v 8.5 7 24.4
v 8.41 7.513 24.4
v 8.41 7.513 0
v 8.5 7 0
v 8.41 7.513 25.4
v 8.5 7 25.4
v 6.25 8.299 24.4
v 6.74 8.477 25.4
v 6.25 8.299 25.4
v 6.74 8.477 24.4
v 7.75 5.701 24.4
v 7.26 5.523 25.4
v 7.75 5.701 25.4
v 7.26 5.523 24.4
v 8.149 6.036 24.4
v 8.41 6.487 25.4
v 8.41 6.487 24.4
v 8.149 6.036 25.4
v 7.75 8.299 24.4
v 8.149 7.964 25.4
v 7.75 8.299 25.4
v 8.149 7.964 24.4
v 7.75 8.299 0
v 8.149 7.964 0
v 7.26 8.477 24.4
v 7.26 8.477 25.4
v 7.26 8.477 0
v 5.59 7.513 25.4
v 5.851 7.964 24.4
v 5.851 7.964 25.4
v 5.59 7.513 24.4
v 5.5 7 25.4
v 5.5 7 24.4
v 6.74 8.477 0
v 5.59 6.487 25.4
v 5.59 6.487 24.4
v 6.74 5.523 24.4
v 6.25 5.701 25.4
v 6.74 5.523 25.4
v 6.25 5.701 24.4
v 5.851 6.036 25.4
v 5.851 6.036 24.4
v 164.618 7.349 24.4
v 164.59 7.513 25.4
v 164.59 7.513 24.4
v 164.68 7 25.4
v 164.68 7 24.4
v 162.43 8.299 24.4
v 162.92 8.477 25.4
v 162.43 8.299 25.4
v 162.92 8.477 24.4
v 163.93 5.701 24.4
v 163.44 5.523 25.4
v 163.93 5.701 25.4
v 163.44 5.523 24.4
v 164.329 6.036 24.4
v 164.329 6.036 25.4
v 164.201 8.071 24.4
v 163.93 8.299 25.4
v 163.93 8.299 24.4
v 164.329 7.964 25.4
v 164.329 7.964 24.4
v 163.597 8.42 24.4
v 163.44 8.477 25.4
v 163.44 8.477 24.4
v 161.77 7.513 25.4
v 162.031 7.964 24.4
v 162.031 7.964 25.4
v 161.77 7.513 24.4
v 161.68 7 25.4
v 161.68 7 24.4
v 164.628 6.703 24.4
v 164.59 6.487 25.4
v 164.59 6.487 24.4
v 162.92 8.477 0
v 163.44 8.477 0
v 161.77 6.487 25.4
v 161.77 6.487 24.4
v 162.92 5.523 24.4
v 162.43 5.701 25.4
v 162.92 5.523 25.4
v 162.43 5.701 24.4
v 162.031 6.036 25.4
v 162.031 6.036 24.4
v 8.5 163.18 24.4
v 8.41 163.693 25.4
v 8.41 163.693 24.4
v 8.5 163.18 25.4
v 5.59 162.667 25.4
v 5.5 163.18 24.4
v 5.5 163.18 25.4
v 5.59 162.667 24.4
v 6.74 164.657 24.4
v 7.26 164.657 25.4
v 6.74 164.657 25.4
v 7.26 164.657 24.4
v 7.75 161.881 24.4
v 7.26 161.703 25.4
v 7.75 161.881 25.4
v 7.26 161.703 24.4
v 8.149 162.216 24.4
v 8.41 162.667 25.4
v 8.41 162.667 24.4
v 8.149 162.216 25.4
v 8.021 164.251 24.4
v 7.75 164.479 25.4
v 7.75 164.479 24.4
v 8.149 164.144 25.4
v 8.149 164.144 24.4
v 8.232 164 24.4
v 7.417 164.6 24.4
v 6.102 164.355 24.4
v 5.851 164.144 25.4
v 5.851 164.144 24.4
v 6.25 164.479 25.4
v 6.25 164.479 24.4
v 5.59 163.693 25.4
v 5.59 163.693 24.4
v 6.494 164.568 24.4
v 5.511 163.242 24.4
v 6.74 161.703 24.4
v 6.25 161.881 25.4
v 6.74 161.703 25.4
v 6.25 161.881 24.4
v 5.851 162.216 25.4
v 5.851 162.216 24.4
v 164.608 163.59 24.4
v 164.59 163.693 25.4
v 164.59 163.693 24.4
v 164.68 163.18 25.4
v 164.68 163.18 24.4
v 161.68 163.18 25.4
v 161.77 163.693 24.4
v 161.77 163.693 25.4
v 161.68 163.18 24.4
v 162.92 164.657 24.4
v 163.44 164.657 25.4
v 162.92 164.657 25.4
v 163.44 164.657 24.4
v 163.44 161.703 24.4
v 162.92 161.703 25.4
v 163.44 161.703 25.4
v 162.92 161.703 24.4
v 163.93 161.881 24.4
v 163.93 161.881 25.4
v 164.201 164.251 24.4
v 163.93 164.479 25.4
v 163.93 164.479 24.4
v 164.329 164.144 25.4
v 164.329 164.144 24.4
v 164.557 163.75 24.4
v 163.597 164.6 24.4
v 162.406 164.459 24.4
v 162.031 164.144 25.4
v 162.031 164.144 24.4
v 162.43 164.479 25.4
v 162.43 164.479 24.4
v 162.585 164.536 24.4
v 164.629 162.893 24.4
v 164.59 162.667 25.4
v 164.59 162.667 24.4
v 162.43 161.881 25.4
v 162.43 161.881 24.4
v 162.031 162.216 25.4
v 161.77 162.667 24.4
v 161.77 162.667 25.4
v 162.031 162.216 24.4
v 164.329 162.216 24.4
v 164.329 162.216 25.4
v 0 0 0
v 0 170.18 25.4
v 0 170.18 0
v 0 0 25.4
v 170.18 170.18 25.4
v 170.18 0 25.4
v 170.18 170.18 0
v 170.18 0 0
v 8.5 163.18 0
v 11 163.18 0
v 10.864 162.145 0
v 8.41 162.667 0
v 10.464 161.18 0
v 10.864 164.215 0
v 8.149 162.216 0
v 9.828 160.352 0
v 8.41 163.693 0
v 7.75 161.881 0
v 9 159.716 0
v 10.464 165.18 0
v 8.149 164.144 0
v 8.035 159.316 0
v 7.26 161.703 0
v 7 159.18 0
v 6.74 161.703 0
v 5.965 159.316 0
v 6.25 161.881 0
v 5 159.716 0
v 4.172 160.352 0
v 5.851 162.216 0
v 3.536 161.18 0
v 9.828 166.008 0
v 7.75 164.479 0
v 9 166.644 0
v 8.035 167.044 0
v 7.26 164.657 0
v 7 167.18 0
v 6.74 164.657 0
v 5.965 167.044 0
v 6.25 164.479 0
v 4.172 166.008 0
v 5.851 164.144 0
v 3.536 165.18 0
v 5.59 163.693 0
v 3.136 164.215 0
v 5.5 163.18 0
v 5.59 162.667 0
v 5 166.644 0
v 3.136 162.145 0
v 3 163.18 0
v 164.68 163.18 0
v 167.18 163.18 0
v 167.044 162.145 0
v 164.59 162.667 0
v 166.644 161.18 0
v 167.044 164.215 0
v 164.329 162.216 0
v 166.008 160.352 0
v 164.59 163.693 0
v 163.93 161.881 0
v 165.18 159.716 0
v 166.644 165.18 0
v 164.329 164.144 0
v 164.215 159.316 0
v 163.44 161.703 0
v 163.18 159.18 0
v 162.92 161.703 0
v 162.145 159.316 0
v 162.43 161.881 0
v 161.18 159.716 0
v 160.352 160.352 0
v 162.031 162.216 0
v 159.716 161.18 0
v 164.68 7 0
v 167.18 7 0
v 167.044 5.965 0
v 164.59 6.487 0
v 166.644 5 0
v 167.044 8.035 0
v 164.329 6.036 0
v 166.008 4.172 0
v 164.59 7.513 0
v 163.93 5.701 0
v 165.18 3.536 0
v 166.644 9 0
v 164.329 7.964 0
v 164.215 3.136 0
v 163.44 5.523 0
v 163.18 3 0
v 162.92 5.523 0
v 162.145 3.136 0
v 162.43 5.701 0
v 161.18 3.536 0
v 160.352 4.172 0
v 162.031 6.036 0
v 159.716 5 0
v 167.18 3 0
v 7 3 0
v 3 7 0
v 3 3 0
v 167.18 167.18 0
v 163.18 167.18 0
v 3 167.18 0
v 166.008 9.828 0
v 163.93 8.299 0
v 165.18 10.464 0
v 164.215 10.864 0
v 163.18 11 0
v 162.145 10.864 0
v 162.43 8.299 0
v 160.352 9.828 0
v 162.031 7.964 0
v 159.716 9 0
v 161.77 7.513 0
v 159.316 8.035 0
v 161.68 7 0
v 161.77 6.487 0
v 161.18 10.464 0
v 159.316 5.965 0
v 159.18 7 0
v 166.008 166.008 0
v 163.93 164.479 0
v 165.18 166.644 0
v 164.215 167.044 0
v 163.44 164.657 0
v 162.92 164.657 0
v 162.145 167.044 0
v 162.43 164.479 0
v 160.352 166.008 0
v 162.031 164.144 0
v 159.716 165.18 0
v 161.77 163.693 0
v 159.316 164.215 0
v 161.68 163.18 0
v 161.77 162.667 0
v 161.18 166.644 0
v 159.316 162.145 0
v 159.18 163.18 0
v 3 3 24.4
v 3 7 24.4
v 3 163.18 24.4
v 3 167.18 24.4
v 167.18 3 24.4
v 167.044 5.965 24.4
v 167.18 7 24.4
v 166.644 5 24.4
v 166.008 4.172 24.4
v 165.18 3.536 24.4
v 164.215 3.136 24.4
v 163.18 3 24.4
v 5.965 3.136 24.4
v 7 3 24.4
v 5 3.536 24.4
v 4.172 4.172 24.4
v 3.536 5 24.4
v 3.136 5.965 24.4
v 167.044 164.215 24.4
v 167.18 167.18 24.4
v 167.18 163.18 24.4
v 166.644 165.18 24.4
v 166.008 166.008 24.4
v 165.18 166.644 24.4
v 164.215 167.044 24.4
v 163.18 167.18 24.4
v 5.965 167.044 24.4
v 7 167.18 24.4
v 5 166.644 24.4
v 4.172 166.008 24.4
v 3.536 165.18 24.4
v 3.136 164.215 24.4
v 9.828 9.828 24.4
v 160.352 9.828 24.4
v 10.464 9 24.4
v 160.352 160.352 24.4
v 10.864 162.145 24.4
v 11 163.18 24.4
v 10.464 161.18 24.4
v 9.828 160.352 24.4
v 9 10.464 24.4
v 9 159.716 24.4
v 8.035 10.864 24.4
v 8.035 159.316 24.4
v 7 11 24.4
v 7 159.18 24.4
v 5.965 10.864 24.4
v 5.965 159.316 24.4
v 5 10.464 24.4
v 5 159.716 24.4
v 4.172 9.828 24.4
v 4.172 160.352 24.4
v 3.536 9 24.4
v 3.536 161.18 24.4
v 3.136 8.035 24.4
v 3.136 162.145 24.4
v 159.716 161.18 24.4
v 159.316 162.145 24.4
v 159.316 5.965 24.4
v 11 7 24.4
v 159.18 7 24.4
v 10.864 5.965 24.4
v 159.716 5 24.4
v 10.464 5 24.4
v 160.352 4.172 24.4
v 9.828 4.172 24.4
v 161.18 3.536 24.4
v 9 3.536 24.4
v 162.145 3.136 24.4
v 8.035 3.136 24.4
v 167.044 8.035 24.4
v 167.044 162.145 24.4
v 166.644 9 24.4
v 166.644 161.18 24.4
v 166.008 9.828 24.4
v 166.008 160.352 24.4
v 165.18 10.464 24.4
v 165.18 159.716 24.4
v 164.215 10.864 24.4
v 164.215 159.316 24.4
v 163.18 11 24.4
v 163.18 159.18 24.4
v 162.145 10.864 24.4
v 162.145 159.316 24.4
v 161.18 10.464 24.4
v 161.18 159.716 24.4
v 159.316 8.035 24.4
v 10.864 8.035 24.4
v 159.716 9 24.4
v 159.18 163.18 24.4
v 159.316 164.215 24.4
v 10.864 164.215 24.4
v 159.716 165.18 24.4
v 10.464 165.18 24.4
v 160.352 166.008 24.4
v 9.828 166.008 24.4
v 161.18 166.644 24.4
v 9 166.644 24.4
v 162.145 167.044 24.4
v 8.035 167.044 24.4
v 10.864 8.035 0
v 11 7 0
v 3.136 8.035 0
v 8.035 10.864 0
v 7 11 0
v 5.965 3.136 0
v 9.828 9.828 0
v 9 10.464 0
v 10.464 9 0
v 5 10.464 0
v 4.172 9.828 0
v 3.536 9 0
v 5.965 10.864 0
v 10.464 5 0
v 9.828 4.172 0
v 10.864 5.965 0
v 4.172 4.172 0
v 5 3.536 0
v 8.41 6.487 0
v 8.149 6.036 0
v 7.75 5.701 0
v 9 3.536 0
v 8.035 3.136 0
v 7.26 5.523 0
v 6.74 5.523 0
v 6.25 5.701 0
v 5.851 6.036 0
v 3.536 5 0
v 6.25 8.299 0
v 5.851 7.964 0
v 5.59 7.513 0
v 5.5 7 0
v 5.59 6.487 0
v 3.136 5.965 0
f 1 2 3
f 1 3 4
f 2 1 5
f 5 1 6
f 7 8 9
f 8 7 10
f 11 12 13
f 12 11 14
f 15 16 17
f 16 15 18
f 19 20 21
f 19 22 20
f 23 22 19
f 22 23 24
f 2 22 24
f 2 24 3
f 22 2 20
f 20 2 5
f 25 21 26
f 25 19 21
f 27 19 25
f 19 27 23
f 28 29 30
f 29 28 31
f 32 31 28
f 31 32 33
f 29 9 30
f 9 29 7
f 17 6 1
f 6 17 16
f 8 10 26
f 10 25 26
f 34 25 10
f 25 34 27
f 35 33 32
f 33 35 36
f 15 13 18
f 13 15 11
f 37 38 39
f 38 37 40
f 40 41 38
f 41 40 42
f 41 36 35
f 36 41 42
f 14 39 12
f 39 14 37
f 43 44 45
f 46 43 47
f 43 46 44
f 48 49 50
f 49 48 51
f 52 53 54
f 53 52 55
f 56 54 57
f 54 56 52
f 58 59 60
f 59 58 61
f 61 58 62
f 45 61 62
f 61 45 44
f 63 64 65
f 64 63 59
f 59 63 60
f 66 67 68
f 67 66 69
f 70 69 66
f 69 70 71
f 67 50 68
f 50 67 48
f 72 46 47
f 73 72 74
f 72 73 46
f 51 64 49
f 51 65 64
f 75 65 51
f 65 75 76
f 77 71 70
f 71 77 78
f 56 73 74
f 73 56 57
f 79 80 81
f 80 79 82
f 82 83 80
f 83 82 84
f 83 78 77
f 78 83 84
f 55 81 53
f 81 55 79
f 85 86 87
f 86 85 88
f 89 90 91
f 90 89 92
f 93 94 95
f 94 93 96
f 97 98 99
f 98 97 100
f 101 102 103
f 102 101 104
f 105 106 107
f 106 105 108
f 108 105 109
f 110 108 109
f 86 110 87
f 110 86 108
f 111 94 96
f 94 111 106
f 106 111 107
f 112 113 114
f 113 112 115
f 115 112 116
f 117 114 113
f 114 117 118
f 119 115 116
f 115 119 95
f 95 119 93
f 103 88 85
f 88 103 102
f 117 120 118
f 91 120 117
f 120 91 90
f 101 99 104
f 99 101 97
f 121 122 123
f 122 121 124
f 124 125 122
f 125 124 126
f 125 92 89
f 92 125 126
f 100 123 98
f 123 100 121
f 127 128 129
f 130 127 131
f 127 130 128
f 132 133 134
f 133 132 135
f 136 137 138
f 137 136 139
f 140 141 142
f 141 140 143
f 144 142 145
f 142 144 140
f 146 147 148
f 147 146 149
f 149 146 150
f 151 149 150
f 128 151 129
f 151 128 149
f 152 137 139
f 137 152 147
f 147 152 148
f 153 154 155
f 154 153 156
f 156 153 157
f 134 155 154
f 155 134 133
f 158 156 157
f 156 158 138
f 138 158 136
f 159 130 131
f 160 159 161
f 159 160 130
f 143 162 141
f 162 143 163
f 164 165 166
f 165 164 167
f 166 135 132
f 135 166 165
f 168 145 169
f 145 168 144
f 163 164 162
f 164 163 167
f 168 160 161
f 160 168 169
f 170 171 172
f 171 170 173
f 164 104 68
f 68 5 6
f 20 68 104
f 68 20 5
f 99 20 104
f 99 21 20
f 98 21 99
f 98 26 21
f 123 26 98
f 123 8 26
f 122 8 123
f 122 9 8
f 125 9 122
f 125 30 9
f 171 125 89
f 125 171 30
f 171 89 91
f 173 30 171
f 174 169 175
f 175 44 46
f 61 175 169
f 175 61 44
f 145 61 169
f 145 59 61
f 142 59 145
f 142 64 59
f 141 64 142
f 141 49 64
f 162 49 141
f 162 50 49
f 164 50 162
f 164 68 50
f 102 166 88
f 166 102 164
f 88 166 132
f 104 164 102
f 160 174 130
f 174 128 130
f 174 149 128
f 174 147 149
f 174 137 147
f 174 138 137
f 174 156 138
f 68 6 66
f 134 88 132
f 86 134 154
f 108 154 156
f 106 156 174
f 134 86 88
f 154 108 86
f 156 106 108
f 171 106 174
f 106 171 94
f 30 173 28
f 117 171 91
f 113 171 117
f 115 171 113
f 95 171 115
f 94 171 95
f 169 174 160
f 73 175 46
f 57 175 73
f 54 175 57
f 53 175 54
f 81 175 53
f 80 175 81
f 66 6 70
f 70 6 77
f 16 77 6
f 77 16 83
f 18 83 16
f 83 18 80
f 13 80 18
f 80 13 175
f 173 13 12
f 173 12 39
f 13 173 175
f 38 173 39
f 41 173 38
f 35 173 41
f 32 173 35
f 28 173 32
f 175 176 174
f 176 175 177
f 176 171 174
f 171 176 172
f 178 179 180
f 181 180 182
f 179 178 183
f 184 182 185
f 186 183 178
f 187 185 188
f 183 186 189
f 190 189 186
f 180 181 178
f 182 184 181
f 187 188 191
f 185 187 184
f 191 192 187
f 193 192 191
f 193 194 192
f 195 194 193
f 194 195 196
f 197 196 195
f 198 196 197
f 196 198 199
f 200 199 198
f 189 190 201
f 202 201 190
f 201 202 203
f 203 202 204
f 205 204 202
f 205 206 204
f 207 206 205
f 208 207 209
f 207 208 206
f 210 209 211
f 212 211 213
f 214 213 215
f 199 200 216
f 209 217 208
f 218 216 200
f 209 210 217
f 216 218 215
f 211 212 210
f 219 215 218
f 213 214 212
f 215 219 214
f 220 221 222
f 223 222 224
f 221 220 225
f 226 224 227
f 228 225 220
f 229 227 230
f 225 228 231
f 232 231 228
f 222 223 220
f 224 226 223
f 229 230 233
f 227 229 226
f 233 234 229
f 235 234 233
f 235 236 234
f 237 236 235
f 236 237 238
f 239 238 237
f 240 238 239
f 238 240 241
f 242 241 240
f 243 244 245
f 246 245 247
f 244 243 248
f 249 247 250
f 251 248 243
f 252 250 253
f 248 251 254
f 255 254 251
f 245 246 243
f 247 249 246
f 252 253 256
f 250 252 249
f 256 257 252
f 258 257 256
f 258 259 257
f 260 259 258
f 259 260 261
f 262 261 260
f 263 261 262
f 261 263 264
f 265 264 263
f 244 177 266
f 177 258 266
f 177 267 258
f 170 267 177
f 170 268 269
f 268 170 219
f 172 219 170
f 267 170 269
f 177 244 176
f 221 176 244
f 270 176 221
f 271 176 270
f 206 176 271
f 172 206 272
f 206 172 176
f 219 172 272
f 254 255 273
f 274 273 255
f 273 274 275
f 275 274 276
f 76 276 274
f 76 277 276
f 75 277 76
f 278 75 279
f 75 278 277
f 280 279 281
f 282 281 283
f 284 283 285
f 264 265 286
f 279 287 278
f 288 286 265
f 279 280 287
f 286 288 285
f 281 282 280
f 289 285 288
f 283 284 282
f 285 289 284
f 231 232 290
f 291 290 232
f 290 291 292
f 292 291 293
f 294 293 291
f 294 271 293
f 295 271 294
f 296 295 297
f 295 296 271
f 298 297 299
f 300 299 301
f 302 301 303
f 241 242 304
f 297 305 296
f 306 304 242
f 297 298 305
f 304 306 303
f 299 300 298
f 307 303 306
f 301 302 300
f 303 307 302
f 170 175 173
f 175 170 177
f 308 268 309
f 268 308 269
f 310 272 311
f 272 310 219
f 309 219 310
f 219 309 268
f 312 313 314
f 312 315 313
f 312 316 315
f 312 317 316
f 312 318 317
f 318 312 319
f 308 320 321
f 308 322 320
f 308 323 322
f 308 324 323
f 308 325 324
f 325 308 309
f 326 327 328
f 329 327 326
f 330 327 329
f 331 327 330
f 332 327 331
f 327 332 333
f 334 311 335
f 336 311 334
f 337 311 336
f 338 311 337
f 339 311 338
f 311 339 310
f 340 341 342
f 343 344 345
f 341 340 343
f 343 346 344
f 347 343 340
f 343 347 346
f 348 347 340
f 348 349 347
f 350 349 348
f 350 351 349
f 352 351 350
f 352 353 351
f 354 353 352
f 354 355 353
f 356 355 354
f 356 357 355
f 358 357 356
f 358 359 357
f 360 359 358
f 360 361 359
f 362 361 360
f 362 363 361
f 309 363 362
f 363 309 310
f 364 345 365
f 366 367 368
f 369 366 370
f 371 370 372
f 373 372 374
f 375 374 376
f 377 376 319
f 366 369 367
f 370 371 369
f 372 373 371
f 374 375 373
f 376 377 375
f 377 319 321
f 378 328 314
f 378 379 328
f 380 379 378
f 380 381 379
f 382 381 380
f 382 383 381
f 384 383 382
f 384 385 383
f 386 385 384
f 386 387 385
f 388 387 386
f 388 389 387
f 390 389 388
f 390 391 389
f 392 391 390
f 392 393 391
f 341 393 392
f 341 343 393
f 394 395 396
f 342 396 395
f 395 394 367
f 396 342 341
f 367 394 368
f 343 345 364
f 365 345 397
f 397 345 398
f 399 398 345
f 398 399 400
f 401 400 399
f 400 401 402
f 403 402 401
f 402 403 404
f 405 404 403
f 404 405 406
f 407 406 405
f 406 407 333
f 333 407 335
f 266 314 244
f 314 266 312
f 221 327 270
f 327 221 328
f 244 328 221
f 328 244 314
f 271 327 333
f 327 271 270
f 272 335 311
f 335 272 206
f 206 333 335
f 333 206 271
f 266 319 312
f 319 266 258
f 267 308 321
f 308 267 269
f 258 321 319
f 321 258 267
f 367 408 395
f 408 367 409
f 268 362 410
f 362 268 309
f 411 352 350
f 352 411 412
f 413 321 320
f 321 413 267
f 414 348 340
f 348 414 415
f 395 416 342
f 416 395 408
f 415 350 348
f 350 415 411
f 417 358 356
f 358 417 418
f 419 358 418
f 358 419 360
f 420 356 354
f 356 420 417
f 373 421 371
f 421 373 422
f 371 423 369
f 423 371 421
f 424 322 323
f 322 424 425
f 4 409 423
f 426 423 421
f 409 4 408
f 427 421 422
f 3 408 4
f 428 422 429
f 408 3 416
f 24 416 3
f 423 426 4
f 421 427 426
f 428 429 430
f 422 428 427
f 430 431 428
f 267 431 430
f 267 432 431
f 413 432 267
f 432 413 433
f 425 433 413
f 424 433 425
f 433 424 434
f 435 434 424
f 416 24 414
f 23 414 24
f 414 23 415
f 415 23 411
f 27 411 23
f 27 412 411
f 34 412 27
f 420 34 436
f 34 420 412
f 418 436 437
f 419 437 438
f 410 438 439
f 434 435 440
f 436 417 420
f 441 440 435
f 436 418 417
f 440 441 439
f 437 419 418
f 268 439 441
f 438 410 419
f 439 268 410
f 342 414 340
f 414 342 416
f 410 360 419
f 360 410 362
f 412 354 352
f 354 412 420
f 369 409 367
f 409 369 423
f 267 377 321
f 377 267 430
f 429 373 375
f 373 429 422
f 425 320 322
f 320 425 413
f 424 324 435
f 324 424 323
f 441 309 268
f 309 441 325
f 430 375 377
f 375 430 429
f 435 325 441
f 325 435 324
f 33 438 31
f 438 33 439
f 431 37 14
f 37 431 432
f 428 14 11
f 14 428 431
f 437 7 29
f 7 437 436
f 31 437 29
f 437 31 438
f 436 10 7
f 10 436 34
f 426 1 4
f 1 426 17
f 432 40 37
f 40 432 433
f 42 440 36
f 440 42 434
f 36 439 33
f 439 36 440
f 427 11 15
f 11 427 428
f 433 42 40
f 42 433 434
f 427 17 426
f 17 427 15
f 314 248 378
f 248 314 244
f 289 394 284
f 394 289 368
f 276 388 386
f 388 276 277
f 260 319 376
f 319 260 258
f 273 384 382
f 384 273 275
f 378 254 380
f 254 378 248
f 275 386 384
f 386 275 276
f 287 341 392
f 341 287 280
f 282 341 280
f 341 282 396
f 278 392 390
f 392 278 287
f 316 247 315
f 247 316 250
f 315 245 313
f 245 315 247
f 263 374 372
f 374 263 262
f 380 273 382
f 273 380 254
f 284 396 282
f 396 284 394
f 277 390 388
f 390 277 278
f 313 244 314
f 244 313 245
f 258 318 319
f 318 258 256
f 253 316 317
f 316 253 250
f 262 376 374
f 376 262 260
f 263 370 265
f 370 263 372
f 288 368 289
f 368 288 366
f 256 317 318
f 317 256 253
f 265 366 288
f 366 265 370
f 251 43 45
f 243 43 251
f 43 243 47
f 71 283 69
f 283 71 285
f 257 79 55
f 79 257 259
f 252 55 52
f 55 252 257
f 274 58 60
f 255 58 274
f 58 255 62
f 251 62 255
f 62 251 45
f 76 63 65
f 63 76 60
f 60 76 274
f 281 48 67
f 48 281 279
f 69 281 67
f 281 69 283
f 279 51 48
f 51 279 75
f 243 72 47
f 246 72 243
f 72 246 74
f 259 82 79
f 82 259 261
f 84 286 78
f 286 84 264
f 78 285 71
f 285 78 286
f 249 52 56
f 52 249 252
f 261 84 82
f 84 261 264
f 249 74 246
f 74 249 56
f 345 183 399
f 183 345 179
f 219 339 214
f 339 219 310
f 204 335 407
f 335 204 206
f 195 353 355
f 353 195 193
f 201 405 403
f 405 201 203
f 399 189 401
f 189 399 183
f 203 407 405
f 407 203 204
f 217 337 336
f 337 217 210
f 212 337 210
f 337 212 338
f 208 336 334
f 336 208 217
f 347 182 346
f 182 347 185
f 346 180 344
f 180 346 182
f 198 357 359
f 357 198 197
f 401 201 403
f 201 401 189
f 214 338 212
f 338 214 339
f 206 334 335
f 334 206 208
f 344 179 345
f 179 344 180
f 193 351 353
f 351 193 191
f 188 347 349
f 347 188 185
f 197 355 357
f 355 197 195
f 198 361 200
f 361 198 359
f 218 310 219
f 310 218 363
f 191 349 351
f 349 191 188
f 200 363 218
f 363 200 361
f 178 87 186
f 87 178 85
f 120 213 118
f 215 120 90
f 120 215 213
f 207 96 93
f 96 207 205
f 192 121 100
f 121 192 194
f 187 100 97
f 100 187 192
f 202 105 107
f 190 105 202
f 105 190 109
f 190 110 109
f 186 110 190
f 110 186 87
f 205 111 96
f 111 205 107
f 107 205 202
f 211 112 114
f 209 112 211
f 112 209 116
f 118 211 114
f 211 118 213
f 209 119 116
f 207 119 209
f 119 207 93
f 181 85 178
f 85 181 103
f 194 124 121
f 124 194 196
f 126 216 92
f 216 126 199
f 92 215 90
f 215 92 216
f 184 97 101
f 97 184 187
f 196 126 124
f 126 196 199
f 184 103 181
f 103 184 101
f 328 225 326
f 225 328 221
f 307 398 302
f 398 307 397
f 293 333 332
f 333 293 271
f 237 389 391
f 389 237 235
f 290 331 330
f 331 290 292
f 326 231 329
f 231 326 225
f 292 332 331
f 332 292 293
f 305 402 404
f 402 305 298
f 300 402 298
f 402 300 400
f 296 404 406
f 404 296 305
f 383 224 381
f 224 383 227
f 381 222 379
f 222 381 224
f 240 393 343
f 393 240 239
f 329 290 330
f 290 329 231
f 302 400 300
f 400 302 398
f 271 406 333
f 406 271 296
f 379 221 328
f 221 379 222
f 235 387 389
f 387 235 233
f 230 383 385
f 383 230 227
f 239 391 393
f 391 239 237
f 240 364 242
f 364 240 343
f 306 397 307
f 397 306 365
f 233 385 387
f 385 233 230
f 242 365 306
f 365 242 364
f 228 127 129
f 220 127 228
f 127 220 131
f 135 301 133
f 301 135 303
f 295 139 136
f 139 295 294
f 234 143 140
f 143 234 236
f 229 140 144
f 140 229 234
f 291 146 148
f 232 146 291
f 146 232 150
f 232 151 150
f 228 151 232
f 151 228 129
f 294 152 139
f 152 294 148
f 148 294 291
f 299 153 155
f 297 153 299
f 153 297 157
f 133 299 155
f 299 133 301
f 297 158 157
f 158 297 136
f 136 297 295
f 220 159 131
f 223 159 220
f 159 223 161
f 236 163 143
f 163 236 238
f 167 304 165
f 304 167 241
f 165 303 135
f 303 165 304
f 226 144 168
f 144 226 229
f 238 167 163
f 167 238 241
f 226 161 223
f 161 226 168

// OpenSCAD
// ============================================================
// PhoneLock - Outer Cover (goes over the flat lid)
// Same footprint as tray, 1 inch tall, open bottom, hollow
// All dimensions in mm. Inches converted at 25.4mm = 1 inch.
// ============================================================

// --- Parameters ---
wall            = 3;          // side wall thickness (mm)
top_thickness   = 1;          // top face thickness (mm)
in2mm           = 25.4;

// Must match component tray exactly
outer_w    = 6.7  * in2mm;   // 170.18 mm  (X)
outer_d    = 6.7  * in2mm;   // 170.18 mm  (Y)
outer_h    = 1.0  * in2mm;   //  25.40 mm  (Z) - 1 inch tall

// Screw boss parameters — must match component tray exactly
boss_r     = 4;               // outer radius of corner screw boss
screw_r    = 1.5;             // M3 screw hole

// ============================================================
// MODULE: Corner screw bosses
// ============================================================
module screw_bosses() {
    offsets = [
        [wall + boss_r,           wall + boss_r          ],
        [outer_w - wall - boss_r, wall + boss_r          ],
        [wall + boss_r,           outer_d - wall - boss_r],
        [outer_w - wall - boss_r, outer_d - wall - boss_r]
    ];
    for (o = offsets) {
        translate([o[0], o[1], 0])
            difference() {
                cylinder(r = boss_r, h = outer_h - top_thickness, $fn = 24);
                translate([0, 0, -1])
                    cylinder(r = screw_r, h = outer_h + 2, $fn = 18);
            }
    }
}

// ============================================================
// MAIN: Outer Cover
// ============================================================
module outer_cover() {
    difference() {

        // --- Outer shell ---
        cube([outer_w, outer_d, outer_h]);

        // --- Hollow interior (open bottom) ---
        translate([wall, wall, 0])
            cube([
                outer_w - 2 * wall,
                outer_d - 2 * wall,
                outer_h - top_thickness   // leaves top_thickness solid on top
            ]);

        // --- 4 screw holes through the top face ---
        offsets = [
            [wall + boss_r,           wall + boss_r          ],
            [outer_w - wall - boss_r, wall + boss_r          ],
            [wall + boss_r,           outer_d - wall - boss_r],
            [outer_w - wall - boss_r, outer_d - wall - boss_r]
        ];
        for (o = offsets) {
            translate([o[0], o[1], outer_h - top_thickness - 1])
                cylinder(r = screw_r, h = top_thickness + 2, $fn = 18);
        }

    }

    // --- Screw bosses inside ---
    screw_bosses();
}

// ============================================================
// RENDER
// ============================================================
outer_cover();
